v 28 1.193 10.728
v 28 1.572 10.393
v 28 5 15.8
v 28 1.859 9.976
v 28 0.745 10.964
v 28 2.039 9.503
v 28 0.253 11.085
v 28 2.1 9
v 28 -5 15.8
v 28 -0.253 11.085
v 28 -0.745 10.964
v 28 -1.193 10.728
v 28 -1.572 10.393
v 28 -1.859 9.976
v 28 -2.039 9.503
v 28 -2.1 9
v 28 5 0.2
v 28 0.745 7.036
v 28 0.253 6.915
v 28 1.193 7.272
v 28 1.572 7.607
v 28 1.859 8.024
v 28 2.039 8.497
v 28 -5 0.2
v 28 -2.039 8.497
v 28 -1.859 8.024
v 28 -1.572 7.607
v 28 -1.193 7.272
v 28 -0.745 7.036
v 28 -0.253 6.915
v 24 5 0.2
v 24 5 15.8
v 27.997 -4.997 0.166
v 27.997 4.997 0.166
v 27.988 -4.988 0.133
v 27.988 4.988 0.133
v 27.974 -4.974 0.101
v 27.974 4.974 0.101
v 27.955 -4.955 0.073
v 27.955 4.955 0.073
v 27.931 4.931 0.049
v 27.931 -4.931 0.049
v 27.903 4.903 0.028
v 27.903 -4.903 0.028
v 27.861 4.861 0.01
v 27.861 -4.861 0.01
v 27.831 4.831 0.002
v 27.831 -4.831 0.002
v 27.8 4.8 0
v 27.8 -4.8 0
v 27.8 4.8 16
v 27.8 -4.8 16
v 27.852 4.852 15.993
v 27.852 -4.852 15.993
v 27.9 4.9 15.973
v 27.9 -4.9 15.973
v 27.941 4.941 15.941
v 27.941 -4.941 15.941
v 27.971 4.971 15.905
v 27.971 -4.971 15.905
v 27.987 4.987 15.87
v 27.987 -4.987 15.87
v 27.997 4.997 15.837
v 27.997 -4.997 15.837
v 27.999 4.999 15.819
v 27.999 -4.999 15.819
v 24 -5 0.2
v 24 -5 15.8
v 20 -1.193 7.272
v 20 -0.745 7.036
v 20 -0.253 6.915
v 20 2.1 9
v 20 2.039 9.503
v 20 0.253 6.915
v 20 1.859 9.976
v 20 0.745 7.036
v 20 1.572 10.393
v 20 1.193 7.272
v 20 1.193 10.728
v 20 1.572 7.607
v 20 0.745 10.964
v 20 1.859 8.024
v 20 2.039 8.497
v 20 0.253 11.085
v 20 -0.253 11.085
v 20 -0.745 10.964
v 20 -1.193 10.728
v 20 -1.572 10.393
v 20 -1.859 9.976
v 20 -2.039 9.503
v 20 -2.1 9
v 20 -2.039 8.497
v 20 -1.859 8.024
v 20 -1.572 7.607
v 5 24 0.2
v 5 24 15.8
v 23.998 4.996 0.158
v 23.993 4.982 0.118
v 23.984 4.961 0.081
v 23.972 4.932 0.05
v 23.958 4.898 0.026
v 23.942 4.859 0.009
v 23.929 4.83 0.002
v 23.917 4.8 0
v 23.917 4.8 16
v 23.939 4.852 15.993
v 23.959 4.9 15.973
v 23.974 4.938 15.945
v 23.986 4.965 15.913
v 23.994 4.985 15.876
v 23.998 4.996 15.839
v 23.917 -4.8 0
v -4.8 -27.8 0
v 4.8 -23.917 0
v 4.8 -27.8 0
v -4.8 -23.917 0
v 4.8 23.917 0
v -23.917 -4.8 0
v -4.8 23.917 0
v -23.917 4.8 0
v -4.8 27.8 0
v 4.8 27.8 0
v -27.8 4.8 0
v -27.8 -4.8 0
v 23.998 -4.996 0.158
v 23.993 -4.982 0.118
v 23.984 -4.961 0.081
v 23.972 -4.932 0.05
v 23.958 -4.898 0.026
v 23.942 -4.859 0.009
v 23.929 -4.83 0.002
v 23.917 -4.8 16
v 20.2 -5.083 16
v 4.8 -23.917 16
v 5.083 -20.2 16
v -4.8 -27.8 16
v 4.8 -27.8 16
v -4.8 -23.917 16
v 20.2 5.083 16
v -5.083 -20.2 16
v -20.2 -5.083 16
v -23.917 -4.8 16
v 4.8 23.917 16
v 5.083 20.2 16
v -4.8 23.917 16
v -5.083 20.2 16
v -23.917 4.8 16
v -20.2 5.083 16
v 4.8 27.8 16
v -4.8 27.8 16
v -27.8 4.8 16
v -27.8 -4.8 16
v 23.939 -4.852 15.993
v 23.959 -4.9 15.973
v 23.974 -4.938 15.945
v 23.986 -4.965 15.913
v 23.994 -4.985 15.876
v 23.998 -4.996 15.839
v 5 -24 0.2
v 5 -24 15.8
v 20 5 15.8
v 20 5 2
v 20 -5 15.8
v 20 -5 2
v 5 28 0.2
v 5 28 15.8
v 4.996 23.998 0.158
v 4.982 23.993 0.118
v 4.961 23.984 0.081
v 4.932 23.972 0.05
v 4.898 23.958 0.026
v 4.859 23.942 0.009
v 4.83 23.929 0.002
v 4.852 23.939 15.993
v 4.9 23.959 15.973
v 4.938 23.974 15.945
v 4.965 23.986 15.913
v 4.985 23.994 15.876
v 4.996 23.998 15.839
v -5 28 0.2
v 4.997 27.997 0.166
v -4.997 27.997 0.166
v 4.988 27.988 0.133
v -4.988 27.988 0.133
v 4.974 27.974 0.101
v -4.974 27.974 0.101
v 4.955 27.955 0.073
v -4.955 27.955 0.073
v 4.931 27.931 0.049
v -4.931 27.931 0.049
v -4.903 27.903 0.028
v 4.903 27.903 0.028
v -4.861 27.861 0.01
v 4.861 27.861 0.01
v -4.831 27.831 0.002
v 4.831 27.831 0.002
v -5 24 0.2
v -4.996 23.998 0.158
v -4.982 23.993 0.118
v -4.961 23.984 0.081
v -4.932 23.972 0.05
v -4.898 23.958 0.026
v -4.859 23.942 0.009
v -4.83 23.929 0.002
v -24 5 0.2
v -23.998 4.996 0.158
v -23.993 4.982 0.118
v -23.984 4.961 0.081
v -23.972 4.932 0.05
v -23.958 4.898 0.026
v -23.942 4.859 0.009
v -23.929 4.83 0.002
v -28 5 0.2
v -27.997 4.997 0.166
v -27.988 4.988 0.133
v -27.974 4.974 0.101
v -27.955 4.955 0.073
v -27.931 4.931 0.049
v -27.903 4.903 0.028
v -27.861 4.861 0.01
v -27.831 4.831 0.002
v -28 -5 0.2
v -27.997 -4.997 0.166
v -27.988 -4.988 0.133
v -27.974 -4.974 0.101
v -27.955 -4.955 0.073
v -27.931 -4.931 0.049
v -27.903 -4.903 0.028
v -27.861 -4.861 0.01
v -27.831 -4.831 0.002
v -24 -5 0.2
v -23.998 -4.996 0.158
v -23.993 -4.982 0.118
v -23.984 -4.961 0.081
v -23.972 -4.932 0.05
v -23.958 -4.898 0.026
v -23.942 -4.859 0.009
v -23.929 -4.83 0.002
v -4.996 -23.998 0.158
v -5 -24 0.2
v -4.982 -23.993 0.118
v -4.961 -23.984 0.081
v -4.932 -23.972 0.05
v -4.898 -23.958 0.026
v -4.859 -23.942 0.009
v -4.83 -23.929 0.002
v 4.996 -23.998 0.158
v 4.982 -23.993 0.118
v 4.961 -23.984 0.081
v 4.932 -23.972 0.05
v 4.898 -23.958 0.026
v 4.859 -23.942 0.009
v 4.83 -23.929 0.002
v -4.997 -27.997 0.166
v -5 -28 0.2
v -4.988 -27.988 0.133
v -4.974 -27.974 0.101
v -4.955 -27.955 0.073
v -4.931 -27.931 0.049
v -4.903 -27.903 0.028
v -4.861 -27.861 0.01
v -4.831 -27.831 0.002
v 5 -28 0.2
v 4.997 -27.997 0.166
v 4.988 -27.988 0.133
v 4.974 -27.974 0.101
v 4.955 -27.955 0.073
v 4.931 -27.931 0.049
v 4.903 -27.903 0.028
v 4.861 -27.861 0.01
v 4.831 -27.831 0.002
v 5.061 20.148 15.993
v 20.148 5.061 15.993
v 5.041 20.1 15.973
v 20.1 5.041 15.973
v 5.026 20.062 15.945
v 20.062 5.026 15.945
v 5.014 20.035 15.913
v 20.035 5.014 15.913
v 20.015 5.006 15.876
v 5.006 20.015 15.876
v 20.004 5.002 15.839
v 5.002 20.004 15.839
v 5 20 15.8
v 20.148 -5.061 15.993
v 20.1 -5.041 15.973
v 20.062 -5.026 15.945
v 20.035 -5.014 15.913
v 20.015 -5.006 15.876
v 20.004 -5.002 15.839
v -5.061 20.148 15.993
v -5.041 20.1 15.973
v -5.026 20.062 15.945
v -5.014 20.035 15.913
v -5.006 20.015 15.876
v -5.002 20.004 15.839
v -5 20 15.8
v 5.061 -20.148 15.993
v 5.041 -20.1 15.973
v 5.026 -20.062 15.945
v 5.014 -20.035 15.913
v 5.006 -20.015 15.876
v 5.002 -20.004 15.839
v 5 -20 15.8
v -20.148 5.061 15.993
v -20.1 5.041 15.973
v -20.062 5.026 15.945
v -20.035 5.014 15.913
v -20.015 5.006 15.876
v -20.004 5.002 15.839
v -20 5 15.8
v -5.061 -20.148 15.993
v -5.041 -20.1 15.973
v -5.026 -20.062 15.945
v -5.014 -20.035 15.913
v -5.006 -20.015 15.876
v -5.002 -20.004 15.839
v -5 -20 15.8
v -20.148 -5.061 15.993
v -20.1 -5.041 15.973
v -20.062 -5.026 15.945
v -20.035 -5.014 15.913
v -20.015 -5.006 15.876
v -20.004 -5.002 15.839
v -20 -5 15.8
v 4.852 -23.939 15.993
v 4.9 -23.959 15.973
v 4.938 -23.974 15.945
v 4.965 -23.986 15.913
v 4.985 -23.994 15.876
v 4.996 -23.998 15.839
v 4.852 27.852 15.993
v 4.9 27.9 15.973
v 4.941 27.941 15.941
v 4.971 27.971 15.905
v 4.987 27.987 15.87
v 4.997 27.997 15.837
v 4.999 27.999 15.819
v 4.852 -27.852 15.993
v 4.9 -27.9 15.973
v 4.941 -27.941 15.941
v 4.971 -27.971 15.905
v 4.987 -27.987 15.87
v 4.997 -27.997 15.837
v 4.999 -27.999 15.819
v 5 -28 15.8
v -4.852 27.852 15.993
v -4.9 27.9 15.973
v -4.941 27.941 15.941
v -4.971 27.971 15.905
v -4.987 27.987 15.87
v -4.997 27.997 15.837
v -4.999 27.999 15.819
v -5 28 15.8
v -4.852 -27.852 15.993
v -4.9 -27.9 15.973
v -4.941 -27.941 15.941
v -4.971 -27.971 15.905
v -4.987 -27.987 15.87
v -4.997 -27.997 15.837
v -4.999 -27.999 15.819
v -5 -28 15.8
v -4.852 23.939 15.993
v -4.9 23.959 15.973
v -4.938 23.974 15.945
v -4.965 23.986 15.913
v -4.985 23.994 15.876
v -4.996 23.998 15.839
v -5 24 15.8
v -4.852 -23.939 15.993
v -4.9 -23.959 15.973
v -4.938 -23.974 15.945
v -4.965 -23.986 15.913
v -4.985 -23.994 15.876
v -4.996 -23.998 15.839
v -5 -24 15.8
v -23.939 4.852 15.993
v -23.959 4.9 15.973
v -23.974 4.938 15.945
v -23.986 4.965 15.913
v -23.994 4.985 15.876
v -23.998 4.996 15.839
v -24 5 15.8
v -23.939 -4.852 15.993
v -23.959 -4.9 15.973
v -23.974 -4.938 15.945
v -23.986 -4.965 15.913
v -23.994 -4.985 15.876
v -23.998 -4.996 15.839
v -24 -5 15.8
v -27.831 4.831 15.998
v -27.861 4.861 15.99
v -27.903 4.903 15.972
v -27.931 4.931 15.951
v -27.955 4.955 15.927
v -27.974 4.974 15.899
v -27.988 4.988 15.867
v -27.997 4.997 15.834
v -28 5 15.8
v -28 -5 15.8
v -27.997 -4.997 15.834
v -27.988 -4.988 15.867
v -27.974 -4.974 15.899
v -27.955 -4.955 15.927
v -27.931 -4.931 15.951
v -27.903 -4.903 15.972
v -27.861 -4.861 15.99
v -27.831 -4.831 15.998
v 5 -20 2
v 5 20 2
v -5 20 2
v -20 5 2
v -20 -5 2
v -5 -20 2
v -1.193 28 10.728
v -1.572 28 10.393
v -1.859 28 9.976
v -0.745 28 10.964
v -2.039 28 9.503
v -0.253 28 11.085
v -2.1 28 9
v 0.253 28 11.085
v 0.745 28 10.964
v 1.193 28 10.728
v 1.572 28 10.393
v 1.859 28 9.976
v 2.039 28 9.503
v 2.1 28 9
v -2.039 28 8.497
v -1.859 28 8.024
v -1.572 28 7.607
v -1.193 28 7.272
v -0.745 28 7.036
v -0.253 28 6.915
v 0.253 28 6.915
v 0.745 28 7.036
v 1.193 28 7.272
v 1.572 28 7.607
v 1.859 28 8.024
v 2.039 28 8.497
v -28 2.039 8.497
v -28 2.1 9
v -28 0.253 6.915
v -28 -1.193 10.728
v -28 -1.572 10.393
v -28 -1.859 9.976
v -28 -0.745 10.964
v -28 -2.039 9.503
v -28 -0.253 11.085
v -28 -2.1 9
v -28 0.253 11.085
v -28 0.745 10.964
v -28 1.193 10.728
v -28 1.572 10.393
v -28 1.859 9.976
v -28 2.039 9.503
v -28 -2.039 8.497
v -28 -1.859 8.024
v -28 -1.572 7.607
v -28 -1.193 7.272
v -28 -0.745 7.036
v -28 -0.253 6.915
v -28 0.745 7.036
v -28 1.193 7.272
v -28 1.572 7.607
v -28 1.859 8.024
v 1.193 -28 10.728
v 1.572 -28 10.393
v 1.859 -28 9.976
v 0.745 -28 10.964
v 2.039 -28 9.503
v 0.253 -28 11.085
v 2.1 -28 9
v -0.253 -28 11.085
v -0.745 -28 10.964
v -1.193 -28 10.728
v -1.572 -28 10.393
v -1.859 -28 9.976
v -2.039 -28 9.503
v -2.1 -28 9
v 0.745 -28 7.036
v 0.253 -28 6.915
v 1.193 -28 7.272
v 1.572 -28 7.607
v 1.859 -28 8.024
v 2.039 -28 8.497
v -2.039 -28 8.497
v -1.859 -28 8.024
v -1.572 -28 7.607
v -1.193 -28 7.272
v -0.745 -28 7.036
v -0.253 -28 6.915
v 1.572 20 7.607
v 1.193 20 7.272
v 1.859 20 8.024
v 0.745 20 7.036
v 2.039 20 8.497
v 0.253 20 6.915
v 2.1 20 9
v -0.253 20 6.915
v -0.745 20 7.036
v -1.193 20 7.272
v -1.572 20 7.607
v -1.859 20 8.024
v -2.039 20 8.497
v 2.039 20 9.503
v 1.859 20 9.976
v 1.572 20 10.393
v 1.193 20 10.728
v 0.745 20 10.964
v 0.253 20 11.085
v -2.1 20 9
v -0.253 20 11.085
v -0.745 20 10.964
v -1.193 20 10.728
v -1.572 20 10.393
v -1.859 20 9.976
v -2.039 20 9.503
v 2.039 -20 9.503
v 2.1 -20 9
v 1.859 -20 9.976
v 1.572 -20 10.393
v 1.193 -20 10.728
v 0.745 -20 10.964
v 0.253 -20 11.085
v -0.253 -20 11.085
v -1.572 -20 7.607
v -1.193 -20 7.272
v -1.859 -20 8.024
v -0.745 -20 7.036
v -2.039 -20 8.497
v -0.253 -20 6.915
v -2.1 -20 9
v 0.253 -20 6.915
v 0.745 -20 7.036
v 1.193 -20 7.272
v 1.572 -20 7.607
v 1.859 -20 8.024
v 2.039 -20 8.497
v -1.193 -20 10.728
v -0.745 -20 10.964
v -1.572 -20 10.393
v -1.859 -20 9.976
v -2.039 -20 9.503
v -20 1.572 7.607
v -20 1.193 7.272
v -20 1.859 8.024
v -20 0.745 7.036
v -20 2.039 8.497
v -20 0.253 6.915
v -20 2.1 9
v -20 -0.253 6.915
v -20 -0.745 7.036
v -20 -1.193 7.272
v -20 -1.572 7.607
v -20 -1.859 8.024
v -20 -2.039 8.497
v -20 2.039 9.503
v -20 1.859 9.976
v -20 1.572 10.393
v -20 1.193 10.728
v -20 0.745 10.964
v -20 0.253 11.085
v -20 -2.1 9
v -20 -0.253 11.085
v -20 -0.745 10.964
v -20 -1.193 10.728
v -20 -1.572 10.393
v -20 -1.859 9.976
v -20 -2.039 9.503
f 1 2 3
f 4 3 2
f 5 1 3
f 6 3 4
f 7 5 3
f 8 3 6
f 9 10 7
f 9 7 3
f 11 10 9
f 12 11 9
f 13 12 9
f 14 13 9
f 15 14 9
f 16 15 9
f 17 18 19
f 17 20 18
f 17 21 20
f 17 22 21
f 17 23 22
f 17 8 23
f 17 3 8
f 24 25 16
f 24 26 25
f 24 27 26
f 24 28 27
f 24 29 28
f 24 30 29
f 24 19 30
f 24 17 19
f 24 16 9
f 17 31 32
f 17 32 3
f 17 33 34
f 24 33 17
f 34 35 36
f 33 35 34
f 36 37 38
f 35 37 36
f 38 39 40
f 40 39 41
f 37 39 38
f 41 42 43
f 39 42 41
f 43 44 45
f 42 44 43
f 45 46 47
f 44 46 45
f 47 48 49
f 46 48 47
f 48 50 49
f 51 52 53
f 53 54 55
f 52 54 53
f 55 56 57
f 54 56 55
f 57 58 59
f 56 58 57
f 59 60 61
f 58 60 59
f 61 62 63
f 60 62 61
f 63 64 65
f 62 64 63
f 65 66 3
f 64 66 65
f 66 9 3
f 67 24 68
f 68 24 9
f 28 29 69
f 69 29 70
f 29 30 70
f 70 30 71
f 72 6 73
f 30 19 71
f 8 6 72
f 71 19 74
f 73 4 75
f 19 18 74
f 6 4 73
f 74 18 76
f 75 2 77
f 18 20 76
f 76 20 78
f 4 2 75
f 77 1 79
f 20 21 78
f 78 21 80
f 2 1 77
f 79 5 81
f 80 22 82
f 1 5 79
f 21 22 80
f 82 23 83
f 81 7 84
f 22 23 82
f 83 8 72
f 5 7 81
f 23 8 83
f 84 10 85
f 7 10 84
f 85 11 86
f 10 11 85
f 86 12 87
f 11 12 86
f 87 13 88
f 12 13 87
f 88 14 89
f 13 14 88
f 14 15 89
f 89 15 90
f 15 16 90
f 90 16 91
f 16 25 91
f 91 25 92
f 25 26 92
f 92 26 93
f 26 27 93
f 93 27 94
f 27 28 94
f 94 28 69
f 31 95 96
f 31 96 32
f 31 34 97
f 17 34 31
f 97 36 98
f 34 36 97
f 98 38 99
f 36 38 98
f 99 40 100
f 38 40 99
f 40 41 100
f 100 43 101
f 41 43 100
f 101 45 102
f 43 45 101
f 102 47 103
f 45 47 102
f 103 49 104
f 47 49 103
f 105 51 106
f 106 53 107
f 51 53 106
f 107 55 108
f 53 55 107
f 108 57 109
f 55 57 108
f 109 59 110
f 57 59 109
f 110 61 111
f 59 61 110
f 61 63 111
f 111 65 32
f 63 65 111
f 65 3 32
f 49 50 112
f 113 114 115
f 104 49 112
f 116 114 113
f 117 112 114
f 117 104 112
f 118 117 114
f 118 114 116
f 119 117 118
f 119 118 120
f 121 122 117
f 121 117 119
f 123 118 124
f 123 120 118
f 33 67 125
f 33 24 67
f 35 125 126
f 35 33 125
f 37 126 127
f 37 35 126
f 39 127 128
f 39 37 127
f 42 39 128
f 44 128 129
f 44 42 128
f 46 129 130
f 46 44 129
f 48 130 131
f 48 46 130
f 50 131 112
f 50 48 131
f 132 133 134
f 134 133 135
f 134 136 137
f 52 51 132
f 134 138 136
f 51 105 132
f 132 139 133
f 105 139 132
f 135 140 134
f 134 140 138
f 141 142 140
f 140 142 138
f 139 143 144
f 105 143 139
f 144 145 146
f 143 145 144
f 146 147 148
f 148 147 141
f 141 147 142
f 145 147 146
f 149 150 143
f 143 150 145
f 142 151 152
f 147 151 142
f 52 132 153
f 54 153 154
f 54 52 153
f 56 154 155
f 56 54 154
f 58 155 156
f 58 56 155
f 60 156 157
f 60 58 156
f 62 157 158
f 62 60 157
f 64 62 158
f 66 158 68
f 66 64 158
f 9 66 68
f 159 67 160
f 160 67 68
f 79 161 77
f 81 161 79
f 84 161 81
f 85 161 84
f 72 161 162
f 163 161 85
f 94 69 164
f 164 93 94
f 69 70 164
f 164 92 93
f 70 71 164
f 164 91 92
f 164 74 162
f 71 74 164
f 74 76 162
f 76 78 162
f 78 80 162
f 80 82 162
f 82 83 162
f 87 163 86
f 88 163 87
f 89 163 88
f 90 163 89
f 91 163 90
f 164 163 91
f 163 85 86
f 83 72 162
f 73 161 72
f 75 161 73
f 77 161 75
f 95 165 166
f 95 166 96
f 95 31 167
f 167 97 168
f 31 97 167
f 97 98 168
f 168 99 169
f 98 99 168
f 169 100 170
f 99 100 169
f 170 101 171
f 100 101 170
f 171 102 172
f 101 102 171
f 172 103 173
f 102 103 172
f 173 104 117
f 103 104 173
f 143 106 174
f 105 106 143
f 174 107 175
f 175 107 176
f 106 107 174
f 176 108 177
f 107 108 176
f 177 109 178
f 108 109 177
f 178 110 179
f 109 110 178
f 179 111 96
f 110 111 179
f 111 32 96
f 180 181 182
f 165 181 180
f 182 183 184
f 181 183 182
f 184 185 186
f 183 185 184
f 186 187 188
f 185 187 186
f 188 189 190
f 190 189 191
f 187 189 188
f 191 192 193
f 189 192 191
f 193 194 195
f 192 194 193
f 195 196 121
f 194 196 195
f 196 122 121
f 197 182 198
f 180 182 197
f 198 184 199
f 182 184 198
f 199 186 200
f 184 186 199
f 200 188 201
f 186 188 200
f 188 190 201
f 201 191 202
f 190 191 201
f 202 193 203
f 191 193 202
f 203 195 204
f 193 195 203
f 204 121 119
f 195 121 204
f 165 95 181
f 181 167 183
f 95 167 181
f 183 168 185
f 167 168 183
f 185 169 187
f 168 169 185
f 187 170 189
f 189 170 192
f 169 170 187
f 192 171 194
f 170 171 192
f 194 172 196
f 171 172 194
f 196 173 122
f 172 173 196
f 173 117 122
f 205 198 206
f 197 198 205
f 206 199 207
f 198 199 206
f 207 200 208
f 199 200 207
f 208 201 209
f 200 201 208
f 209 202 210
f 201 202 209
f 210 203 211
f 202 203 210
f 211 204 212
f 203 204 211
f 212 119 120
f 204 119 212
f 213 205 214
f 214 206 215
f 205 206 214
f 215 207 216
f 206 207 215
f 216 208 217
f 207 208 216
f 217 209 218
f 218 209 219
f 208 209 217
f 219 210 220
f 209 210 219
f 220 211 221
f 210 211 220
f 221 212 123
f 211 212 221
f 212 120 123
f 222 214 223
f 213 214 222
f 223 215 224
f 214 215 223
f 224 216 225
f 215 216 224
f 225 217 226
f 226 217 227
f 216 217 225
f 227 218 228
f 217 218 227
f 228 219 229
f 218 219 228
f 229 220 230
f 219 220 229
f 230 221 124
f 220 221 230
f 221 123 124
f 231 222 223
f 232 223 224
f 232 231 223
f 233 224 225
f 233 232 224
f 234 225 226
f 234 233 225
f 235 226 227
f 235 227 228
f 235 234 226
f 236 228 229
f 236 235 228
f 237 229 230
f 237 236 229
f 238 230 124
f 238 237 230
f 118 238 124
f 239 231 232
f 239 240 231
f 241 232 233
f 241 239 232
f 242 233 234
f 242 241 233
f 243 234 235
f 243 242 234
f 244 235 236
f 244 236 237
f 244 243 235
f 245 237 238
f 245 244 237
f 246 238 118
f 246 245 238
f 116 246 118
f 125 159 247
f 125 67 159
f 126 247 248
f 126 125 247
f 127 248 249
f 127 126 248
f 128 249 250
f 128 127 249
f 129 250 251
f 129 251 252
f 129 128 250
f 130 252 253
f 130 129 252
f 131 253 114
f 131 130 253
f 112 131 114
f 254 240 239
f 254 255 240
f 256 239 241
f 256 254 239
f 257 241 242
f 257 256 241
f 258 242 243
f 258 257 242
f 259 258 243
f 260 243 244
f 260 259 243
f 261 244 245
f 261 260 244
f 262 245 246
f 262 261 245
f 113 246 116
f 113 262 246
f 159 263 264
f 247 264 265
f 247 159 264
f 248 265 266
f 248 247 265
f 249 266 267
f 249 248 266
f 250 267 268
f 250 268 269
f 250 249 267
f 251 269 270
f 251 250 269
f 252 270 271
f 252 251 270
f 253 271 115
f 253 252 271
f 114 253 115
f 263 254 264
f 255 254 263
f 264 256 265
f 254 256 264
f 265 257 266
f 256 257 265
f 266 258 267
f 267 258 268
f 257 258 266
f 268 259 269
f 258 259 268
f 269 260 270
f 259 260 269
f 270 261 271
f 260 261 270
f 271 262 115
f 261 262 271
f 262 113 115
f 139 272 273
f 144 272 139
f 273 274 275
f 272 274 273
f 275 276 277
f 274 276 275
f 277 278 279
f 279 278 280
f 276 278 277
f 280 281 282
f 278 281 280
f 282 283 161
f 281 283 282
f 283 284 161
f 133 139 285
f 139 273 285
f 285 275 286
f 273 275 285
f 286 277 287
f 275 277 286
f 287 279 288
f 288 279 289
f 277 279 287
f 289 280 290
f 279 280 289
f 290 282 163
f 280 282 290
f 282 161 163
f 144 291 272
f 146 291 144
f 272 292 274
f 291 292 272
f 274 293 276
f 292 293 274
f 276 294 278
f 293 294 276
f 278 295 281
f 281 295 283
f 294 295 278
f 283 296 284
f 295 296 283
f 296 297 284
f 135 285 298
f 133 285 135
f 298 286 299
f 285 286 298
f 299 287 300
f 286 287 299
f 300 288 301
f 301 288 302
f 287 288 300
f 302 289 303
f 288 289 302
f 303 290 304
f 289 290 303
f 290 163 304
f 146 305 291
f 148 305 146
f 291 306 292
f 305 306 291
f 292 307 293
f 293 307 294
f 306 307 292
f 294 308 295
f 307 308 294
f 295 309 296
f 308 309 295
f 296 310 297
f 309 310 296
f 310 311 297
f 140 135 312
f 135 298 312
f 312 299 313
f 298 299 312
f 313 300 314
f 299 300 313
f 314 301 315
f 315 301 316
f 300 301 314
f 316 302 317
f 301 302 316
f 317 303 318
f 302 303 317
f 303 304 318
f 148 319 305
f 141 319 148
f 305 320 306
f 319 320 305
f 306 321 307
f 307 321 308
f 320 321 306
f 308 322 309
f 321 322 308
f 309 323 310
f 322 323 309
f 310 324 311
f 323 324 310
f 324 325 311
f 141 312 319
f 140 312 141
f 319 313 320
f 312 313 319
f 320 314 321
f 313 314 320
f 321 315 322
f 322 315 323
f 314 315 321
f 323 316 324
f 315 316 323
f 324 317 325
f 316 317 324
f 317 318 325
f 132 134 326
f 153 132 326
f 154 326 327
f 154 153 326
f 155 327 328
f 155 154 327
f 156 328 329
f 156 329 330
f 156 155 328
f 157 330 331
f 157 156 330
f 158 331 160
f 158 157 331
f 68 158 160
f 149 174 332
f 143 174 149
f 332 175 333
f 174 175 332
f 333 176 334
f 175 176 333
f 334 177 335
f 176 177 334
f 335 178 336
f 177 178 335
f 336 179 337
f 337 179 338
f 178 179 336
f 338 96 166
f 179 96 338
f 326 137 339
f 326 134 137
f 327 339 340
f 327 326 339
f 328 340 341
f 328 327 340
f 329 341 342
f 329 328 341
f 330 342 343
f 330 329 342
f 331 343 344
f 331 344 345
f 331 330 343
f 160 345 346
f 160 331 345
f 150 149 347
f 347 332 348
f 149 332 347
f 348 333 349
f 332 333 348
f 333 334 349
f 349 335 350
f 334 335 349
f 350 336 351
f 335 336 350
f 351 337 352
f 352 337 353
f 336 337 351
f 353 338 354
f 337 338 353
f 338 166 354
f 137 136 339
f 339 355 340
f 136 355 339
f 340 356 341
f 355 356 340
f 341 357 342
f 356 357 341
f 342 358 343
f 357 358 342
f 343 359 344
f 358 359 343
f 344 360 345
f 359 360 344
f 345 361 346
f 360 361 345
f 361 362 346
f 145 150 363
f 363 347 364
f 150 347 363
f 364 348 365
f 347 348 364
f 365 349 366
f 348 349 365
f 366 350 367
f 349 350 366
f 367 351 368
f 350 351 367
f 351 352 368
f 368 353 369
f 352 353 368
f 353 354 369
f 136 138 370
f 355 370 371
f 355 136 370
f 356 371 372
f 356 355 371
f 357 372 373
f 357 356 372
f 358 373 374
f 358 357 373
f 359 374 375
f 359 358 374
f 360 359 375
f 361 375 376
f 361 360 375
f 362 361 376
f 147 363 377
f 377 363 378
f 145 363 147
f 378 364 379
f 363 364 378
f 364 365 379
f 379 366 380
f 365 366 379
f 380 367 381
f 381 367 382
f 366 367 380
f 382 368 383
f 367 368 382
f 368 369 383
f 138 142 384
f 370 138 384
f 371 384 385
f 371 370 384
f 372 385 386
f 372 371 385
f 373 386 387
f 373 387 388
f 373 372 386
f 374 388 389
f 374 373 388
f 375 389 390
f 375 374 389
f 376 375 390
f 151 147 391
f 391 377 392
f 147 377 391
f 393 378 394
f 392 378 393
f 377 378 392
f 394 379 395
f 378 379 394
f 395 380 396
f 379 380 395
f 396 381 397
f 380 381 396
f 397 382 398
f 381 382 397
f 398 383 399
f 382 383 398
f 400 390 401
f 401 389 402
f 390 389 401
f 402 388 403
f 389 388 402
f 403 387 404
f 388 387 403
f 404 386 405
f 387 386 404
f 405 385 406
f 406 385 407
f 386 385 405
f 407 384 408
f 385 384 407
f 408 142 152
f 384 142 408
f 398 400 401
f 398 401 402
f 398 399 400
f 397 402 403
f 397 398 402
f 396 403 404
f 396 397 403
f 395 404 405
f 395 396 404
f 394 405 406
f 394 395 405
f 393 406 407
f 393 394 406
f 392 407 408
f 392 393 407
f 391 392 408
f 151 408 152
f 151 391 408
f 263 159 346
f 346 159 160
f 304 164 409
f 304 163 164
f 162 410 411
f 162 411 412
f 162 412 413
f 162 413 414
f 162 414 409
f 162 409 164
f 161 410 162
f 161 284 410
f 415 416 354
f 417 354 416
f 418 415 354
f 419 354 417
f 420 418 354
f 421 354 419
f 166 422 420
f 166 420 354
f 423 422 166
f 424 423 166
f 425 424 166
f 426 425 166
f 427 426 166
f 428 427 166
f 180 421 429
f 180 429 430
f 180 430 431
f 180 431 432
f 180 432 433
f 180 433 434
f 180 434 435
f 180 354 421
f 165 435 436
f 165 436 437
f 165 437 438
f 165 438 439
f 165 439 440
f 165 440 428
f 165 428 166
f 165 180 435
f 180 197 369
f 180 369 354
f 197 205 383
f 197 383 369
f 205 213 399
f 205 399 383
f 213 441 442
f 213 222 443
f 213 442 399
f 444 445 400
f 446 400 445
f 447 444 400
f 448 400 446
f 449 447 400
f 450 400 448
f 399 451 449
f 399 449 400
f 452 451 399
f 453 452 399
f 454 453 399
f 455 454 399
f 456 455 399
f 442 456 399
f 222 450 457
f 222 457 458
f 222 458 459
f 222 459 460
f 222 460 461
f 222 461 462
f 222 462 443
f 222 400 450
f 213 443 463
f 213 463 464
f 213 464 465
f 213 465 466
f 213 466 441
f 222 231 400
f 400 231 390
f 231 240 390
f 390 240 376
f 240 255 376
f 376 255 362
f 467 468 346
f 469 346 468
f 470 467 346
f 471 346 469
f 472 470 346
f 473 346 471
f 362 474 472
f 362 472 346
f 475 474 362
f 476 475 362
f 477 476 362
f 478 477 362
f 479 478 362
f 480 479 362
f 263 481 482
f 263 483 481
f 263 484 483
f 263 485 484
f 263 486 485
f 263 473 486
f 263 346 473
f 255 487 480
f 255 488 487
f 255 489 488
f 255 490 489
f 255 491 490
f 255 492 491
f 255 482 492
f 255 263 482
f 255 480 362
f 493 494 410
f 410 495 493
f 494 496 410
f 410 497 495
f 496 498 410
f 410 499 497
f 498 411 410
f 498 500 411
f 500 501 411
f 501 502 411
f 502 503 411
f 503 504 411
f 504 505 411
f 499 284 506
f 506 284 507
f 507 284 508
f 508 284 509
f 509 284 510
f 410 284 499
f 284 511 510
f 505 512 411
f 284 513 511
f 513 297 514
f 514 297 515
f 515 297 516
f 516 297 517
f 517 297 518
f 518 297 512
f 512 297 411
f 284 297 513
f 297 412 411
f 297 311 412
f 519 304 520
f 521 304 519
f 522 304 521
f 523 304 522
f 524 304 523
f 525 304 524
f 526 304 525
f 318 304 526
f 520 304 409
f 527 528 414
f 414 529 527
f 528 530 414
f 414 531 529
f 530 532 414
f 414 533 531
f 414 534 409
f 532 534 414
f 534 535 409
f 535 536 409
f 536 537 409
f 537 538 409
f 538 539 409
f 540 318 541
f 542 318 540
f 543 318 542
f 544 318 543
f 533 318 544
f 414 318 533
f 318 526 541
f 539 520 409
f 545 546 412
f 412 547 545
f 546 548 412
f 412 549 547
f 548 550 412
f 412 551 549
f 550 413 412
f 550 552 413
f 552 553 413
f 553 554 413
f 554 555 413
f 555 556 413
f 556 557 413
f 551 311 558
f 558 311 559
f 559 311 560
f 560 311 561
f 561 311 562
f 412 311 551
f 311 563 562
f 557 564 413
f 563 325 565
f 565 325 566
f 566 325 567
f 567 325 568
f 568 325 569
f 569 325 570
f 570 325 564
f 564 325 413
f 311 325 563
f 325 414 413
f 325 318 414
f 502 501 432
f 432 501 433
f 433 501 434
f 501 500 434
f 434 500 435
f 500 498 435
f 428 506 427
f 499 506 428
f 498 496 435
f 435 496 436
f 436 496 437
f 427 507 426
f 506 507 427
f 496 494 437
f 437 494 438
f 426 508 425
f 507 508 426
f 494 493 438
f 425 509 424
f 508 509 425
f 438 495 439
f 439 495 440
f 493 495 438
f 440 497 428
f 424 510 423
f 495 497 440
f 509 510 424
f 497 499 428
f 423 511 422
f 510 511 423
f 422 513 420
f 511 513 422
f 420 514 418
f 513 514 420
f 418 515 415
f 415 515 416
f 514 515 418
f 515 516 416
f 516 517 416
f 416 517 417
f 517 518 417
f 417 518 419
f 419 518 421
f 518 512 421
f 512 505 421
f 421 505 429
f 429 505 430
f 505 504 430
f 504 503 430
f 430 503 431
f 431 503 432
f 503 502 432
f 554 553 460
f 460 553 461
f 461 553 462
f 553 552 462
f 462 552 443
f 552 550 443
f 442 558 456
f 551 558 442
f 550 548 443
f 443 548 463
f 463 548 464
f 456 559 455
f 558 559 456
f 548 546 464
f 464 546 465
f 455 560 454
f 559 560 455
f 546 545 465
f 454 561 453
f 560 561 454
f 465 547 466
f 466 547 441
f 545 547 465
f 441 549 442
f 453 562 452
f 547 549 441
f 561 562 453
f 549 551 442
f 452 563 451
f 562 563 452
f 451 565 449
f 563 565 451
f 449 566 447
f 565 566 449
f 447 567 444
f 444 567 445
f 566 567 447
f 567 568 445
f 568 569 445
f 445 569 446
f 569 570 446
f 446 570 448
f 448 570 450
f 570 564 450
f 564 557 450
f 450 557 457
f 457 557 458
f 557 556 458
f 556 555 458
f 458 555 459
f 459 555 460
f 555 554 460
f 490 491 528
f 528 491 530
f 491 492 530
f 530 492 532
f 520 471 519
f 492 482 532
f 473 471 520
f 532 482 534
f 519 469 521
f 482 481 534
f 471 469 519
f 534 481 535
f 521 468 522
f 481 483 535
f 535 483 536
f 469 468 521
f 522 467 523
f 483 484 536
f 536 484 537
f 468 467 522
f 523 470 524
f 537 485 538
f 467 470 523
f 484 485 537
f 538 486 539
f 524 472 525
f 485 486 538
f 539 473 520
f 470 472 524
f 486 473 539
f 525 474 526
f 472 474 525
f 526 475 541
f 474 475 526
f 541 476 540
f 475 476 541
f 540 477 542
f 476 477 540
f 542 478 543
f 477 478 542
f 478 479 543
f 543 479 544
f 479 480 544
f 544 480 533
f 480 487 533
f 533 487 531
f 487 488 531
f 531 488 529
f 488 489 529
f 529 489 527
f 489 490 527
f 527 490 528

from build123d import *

# Parameters (mm, degrees)
PAD_DEPTH       = 16
POCKET_DEPTH    = 14
SKETCH002_R     = 2.1
POCKET001_DEPTH = 100
SKETCH003_R     = 2.1
POCKET002_DEPTH = 100
FILLET_R        = 0.2
FILLET001_R     = 0.2
FILLET002_R     = 0.2


with BuildPart() as part:
    # Sketch → Pad (new body)
    with BuildSketch(Plane.XY):
        Polygon((-5, 28), (5, 28), (5, 24), (24, 5), (28, 5), (28, -5), (24, -5), (5, -24), (5, -28), (-5, -28), (-5, -24), (-24, -5), (-28, -5), (-28, 5), (-24, 5), (-5, 24), align=None)
    extrude(amount=PAD_DEPTH)

    # Sketch001 (on Face18 of Pad) → Pocket (cut)
    with BuildSketch(Plane.XY.offset(16)):
        Polygon((5, 20), (-5, 20), (-20, 5), (-20, -5), (-5, -20), (5, -20), (20, -5), (20, 5), align=None)
    extrude(amount=-POCKET_DEPTH, mode=Mode.SUBTRACT)

    # Sketch002 (on Face17 of Pocket) → Pocket001 (cut)
    with BuildSketch(Plane.XZ.offset(28)):
        with Locations((0, 9)):
            Circle(SKETCH002_R)
    extrude(amount=-POCKET001_DEPTH, mode=Mode.SUBTRACT)

    # Sketch003 (on Face13 of Pocket001) → Pocket002 (cut)
    with BuildSketch(Plane.YZ.offset(28)):
        with Locations((0, 9)):
            Circle(SKETCH003_R)
    extrude(amount=-POCKET002_DEPTH, mode=Mode.SUBTRACT)

    # Fillet
    fillet_edges = [part.edges().sort_by_distance(p)[0] for p in [
        (28, 0, 16),
        (26, 5, 16),
        (14.5, 14.5, 16),
        (26, -5, 16),
        (14.5, -14.5, 16),
        (5, -26, 16),
        (0, -28, 16),
        (-5, -26, 16),
        (-14.5, -14.5, 16),
        (-26, -5, 16),
        (-28, 0, 16),
        (-26, 5, 16),
        (-14.5, 14.5, 16),
        (-5, 26, 16),
        (0, 28, 16),
        (5, 26, 16),
    ]]
    fillet(fillet_edges, radius=FILLET_R)

    # Fillet001
    fillet001_edges = [part.edges().sort_by_distance(p)[0] for p in [
        (12.5, 12.5, 16),
        (20, 0, 16),
        (12.5, -12.5, 16),
        (0, -20, 16),
        (-12.5, -12.5, 16),
        (-20, 0, 16),
        (-12.5, 12.5, 16),
        (0, 20, 16),
    ]]
    fillet(fillet001_edges, radius=FILLET001_R)

    # Fillet002
    fillet002_edges = [part.edges().sort_by_distance(p)[0] for p in [
        (0, 28, 0),
        (-14.5, 14.5, 0),
        (-5, 26, 0),
        (5, 26, 0),
        (14.5, 14.5, 0),
        (26, 5, 0),
        (28, 0, 0),
        (26, -5, 0),
        (14.5, -14.5, 0),
        (5, -26, 0),
        (0, -28, 0),
        (-5, -26, 0),
        (-14.5, -14.5, 0),
        (-26, -5, 0),
        (-28, 0, 0),
        (-26, 5, 0),
    ]]
    fillet(fillet002_edges, radius=FILLET002_R)


solid = part.part
